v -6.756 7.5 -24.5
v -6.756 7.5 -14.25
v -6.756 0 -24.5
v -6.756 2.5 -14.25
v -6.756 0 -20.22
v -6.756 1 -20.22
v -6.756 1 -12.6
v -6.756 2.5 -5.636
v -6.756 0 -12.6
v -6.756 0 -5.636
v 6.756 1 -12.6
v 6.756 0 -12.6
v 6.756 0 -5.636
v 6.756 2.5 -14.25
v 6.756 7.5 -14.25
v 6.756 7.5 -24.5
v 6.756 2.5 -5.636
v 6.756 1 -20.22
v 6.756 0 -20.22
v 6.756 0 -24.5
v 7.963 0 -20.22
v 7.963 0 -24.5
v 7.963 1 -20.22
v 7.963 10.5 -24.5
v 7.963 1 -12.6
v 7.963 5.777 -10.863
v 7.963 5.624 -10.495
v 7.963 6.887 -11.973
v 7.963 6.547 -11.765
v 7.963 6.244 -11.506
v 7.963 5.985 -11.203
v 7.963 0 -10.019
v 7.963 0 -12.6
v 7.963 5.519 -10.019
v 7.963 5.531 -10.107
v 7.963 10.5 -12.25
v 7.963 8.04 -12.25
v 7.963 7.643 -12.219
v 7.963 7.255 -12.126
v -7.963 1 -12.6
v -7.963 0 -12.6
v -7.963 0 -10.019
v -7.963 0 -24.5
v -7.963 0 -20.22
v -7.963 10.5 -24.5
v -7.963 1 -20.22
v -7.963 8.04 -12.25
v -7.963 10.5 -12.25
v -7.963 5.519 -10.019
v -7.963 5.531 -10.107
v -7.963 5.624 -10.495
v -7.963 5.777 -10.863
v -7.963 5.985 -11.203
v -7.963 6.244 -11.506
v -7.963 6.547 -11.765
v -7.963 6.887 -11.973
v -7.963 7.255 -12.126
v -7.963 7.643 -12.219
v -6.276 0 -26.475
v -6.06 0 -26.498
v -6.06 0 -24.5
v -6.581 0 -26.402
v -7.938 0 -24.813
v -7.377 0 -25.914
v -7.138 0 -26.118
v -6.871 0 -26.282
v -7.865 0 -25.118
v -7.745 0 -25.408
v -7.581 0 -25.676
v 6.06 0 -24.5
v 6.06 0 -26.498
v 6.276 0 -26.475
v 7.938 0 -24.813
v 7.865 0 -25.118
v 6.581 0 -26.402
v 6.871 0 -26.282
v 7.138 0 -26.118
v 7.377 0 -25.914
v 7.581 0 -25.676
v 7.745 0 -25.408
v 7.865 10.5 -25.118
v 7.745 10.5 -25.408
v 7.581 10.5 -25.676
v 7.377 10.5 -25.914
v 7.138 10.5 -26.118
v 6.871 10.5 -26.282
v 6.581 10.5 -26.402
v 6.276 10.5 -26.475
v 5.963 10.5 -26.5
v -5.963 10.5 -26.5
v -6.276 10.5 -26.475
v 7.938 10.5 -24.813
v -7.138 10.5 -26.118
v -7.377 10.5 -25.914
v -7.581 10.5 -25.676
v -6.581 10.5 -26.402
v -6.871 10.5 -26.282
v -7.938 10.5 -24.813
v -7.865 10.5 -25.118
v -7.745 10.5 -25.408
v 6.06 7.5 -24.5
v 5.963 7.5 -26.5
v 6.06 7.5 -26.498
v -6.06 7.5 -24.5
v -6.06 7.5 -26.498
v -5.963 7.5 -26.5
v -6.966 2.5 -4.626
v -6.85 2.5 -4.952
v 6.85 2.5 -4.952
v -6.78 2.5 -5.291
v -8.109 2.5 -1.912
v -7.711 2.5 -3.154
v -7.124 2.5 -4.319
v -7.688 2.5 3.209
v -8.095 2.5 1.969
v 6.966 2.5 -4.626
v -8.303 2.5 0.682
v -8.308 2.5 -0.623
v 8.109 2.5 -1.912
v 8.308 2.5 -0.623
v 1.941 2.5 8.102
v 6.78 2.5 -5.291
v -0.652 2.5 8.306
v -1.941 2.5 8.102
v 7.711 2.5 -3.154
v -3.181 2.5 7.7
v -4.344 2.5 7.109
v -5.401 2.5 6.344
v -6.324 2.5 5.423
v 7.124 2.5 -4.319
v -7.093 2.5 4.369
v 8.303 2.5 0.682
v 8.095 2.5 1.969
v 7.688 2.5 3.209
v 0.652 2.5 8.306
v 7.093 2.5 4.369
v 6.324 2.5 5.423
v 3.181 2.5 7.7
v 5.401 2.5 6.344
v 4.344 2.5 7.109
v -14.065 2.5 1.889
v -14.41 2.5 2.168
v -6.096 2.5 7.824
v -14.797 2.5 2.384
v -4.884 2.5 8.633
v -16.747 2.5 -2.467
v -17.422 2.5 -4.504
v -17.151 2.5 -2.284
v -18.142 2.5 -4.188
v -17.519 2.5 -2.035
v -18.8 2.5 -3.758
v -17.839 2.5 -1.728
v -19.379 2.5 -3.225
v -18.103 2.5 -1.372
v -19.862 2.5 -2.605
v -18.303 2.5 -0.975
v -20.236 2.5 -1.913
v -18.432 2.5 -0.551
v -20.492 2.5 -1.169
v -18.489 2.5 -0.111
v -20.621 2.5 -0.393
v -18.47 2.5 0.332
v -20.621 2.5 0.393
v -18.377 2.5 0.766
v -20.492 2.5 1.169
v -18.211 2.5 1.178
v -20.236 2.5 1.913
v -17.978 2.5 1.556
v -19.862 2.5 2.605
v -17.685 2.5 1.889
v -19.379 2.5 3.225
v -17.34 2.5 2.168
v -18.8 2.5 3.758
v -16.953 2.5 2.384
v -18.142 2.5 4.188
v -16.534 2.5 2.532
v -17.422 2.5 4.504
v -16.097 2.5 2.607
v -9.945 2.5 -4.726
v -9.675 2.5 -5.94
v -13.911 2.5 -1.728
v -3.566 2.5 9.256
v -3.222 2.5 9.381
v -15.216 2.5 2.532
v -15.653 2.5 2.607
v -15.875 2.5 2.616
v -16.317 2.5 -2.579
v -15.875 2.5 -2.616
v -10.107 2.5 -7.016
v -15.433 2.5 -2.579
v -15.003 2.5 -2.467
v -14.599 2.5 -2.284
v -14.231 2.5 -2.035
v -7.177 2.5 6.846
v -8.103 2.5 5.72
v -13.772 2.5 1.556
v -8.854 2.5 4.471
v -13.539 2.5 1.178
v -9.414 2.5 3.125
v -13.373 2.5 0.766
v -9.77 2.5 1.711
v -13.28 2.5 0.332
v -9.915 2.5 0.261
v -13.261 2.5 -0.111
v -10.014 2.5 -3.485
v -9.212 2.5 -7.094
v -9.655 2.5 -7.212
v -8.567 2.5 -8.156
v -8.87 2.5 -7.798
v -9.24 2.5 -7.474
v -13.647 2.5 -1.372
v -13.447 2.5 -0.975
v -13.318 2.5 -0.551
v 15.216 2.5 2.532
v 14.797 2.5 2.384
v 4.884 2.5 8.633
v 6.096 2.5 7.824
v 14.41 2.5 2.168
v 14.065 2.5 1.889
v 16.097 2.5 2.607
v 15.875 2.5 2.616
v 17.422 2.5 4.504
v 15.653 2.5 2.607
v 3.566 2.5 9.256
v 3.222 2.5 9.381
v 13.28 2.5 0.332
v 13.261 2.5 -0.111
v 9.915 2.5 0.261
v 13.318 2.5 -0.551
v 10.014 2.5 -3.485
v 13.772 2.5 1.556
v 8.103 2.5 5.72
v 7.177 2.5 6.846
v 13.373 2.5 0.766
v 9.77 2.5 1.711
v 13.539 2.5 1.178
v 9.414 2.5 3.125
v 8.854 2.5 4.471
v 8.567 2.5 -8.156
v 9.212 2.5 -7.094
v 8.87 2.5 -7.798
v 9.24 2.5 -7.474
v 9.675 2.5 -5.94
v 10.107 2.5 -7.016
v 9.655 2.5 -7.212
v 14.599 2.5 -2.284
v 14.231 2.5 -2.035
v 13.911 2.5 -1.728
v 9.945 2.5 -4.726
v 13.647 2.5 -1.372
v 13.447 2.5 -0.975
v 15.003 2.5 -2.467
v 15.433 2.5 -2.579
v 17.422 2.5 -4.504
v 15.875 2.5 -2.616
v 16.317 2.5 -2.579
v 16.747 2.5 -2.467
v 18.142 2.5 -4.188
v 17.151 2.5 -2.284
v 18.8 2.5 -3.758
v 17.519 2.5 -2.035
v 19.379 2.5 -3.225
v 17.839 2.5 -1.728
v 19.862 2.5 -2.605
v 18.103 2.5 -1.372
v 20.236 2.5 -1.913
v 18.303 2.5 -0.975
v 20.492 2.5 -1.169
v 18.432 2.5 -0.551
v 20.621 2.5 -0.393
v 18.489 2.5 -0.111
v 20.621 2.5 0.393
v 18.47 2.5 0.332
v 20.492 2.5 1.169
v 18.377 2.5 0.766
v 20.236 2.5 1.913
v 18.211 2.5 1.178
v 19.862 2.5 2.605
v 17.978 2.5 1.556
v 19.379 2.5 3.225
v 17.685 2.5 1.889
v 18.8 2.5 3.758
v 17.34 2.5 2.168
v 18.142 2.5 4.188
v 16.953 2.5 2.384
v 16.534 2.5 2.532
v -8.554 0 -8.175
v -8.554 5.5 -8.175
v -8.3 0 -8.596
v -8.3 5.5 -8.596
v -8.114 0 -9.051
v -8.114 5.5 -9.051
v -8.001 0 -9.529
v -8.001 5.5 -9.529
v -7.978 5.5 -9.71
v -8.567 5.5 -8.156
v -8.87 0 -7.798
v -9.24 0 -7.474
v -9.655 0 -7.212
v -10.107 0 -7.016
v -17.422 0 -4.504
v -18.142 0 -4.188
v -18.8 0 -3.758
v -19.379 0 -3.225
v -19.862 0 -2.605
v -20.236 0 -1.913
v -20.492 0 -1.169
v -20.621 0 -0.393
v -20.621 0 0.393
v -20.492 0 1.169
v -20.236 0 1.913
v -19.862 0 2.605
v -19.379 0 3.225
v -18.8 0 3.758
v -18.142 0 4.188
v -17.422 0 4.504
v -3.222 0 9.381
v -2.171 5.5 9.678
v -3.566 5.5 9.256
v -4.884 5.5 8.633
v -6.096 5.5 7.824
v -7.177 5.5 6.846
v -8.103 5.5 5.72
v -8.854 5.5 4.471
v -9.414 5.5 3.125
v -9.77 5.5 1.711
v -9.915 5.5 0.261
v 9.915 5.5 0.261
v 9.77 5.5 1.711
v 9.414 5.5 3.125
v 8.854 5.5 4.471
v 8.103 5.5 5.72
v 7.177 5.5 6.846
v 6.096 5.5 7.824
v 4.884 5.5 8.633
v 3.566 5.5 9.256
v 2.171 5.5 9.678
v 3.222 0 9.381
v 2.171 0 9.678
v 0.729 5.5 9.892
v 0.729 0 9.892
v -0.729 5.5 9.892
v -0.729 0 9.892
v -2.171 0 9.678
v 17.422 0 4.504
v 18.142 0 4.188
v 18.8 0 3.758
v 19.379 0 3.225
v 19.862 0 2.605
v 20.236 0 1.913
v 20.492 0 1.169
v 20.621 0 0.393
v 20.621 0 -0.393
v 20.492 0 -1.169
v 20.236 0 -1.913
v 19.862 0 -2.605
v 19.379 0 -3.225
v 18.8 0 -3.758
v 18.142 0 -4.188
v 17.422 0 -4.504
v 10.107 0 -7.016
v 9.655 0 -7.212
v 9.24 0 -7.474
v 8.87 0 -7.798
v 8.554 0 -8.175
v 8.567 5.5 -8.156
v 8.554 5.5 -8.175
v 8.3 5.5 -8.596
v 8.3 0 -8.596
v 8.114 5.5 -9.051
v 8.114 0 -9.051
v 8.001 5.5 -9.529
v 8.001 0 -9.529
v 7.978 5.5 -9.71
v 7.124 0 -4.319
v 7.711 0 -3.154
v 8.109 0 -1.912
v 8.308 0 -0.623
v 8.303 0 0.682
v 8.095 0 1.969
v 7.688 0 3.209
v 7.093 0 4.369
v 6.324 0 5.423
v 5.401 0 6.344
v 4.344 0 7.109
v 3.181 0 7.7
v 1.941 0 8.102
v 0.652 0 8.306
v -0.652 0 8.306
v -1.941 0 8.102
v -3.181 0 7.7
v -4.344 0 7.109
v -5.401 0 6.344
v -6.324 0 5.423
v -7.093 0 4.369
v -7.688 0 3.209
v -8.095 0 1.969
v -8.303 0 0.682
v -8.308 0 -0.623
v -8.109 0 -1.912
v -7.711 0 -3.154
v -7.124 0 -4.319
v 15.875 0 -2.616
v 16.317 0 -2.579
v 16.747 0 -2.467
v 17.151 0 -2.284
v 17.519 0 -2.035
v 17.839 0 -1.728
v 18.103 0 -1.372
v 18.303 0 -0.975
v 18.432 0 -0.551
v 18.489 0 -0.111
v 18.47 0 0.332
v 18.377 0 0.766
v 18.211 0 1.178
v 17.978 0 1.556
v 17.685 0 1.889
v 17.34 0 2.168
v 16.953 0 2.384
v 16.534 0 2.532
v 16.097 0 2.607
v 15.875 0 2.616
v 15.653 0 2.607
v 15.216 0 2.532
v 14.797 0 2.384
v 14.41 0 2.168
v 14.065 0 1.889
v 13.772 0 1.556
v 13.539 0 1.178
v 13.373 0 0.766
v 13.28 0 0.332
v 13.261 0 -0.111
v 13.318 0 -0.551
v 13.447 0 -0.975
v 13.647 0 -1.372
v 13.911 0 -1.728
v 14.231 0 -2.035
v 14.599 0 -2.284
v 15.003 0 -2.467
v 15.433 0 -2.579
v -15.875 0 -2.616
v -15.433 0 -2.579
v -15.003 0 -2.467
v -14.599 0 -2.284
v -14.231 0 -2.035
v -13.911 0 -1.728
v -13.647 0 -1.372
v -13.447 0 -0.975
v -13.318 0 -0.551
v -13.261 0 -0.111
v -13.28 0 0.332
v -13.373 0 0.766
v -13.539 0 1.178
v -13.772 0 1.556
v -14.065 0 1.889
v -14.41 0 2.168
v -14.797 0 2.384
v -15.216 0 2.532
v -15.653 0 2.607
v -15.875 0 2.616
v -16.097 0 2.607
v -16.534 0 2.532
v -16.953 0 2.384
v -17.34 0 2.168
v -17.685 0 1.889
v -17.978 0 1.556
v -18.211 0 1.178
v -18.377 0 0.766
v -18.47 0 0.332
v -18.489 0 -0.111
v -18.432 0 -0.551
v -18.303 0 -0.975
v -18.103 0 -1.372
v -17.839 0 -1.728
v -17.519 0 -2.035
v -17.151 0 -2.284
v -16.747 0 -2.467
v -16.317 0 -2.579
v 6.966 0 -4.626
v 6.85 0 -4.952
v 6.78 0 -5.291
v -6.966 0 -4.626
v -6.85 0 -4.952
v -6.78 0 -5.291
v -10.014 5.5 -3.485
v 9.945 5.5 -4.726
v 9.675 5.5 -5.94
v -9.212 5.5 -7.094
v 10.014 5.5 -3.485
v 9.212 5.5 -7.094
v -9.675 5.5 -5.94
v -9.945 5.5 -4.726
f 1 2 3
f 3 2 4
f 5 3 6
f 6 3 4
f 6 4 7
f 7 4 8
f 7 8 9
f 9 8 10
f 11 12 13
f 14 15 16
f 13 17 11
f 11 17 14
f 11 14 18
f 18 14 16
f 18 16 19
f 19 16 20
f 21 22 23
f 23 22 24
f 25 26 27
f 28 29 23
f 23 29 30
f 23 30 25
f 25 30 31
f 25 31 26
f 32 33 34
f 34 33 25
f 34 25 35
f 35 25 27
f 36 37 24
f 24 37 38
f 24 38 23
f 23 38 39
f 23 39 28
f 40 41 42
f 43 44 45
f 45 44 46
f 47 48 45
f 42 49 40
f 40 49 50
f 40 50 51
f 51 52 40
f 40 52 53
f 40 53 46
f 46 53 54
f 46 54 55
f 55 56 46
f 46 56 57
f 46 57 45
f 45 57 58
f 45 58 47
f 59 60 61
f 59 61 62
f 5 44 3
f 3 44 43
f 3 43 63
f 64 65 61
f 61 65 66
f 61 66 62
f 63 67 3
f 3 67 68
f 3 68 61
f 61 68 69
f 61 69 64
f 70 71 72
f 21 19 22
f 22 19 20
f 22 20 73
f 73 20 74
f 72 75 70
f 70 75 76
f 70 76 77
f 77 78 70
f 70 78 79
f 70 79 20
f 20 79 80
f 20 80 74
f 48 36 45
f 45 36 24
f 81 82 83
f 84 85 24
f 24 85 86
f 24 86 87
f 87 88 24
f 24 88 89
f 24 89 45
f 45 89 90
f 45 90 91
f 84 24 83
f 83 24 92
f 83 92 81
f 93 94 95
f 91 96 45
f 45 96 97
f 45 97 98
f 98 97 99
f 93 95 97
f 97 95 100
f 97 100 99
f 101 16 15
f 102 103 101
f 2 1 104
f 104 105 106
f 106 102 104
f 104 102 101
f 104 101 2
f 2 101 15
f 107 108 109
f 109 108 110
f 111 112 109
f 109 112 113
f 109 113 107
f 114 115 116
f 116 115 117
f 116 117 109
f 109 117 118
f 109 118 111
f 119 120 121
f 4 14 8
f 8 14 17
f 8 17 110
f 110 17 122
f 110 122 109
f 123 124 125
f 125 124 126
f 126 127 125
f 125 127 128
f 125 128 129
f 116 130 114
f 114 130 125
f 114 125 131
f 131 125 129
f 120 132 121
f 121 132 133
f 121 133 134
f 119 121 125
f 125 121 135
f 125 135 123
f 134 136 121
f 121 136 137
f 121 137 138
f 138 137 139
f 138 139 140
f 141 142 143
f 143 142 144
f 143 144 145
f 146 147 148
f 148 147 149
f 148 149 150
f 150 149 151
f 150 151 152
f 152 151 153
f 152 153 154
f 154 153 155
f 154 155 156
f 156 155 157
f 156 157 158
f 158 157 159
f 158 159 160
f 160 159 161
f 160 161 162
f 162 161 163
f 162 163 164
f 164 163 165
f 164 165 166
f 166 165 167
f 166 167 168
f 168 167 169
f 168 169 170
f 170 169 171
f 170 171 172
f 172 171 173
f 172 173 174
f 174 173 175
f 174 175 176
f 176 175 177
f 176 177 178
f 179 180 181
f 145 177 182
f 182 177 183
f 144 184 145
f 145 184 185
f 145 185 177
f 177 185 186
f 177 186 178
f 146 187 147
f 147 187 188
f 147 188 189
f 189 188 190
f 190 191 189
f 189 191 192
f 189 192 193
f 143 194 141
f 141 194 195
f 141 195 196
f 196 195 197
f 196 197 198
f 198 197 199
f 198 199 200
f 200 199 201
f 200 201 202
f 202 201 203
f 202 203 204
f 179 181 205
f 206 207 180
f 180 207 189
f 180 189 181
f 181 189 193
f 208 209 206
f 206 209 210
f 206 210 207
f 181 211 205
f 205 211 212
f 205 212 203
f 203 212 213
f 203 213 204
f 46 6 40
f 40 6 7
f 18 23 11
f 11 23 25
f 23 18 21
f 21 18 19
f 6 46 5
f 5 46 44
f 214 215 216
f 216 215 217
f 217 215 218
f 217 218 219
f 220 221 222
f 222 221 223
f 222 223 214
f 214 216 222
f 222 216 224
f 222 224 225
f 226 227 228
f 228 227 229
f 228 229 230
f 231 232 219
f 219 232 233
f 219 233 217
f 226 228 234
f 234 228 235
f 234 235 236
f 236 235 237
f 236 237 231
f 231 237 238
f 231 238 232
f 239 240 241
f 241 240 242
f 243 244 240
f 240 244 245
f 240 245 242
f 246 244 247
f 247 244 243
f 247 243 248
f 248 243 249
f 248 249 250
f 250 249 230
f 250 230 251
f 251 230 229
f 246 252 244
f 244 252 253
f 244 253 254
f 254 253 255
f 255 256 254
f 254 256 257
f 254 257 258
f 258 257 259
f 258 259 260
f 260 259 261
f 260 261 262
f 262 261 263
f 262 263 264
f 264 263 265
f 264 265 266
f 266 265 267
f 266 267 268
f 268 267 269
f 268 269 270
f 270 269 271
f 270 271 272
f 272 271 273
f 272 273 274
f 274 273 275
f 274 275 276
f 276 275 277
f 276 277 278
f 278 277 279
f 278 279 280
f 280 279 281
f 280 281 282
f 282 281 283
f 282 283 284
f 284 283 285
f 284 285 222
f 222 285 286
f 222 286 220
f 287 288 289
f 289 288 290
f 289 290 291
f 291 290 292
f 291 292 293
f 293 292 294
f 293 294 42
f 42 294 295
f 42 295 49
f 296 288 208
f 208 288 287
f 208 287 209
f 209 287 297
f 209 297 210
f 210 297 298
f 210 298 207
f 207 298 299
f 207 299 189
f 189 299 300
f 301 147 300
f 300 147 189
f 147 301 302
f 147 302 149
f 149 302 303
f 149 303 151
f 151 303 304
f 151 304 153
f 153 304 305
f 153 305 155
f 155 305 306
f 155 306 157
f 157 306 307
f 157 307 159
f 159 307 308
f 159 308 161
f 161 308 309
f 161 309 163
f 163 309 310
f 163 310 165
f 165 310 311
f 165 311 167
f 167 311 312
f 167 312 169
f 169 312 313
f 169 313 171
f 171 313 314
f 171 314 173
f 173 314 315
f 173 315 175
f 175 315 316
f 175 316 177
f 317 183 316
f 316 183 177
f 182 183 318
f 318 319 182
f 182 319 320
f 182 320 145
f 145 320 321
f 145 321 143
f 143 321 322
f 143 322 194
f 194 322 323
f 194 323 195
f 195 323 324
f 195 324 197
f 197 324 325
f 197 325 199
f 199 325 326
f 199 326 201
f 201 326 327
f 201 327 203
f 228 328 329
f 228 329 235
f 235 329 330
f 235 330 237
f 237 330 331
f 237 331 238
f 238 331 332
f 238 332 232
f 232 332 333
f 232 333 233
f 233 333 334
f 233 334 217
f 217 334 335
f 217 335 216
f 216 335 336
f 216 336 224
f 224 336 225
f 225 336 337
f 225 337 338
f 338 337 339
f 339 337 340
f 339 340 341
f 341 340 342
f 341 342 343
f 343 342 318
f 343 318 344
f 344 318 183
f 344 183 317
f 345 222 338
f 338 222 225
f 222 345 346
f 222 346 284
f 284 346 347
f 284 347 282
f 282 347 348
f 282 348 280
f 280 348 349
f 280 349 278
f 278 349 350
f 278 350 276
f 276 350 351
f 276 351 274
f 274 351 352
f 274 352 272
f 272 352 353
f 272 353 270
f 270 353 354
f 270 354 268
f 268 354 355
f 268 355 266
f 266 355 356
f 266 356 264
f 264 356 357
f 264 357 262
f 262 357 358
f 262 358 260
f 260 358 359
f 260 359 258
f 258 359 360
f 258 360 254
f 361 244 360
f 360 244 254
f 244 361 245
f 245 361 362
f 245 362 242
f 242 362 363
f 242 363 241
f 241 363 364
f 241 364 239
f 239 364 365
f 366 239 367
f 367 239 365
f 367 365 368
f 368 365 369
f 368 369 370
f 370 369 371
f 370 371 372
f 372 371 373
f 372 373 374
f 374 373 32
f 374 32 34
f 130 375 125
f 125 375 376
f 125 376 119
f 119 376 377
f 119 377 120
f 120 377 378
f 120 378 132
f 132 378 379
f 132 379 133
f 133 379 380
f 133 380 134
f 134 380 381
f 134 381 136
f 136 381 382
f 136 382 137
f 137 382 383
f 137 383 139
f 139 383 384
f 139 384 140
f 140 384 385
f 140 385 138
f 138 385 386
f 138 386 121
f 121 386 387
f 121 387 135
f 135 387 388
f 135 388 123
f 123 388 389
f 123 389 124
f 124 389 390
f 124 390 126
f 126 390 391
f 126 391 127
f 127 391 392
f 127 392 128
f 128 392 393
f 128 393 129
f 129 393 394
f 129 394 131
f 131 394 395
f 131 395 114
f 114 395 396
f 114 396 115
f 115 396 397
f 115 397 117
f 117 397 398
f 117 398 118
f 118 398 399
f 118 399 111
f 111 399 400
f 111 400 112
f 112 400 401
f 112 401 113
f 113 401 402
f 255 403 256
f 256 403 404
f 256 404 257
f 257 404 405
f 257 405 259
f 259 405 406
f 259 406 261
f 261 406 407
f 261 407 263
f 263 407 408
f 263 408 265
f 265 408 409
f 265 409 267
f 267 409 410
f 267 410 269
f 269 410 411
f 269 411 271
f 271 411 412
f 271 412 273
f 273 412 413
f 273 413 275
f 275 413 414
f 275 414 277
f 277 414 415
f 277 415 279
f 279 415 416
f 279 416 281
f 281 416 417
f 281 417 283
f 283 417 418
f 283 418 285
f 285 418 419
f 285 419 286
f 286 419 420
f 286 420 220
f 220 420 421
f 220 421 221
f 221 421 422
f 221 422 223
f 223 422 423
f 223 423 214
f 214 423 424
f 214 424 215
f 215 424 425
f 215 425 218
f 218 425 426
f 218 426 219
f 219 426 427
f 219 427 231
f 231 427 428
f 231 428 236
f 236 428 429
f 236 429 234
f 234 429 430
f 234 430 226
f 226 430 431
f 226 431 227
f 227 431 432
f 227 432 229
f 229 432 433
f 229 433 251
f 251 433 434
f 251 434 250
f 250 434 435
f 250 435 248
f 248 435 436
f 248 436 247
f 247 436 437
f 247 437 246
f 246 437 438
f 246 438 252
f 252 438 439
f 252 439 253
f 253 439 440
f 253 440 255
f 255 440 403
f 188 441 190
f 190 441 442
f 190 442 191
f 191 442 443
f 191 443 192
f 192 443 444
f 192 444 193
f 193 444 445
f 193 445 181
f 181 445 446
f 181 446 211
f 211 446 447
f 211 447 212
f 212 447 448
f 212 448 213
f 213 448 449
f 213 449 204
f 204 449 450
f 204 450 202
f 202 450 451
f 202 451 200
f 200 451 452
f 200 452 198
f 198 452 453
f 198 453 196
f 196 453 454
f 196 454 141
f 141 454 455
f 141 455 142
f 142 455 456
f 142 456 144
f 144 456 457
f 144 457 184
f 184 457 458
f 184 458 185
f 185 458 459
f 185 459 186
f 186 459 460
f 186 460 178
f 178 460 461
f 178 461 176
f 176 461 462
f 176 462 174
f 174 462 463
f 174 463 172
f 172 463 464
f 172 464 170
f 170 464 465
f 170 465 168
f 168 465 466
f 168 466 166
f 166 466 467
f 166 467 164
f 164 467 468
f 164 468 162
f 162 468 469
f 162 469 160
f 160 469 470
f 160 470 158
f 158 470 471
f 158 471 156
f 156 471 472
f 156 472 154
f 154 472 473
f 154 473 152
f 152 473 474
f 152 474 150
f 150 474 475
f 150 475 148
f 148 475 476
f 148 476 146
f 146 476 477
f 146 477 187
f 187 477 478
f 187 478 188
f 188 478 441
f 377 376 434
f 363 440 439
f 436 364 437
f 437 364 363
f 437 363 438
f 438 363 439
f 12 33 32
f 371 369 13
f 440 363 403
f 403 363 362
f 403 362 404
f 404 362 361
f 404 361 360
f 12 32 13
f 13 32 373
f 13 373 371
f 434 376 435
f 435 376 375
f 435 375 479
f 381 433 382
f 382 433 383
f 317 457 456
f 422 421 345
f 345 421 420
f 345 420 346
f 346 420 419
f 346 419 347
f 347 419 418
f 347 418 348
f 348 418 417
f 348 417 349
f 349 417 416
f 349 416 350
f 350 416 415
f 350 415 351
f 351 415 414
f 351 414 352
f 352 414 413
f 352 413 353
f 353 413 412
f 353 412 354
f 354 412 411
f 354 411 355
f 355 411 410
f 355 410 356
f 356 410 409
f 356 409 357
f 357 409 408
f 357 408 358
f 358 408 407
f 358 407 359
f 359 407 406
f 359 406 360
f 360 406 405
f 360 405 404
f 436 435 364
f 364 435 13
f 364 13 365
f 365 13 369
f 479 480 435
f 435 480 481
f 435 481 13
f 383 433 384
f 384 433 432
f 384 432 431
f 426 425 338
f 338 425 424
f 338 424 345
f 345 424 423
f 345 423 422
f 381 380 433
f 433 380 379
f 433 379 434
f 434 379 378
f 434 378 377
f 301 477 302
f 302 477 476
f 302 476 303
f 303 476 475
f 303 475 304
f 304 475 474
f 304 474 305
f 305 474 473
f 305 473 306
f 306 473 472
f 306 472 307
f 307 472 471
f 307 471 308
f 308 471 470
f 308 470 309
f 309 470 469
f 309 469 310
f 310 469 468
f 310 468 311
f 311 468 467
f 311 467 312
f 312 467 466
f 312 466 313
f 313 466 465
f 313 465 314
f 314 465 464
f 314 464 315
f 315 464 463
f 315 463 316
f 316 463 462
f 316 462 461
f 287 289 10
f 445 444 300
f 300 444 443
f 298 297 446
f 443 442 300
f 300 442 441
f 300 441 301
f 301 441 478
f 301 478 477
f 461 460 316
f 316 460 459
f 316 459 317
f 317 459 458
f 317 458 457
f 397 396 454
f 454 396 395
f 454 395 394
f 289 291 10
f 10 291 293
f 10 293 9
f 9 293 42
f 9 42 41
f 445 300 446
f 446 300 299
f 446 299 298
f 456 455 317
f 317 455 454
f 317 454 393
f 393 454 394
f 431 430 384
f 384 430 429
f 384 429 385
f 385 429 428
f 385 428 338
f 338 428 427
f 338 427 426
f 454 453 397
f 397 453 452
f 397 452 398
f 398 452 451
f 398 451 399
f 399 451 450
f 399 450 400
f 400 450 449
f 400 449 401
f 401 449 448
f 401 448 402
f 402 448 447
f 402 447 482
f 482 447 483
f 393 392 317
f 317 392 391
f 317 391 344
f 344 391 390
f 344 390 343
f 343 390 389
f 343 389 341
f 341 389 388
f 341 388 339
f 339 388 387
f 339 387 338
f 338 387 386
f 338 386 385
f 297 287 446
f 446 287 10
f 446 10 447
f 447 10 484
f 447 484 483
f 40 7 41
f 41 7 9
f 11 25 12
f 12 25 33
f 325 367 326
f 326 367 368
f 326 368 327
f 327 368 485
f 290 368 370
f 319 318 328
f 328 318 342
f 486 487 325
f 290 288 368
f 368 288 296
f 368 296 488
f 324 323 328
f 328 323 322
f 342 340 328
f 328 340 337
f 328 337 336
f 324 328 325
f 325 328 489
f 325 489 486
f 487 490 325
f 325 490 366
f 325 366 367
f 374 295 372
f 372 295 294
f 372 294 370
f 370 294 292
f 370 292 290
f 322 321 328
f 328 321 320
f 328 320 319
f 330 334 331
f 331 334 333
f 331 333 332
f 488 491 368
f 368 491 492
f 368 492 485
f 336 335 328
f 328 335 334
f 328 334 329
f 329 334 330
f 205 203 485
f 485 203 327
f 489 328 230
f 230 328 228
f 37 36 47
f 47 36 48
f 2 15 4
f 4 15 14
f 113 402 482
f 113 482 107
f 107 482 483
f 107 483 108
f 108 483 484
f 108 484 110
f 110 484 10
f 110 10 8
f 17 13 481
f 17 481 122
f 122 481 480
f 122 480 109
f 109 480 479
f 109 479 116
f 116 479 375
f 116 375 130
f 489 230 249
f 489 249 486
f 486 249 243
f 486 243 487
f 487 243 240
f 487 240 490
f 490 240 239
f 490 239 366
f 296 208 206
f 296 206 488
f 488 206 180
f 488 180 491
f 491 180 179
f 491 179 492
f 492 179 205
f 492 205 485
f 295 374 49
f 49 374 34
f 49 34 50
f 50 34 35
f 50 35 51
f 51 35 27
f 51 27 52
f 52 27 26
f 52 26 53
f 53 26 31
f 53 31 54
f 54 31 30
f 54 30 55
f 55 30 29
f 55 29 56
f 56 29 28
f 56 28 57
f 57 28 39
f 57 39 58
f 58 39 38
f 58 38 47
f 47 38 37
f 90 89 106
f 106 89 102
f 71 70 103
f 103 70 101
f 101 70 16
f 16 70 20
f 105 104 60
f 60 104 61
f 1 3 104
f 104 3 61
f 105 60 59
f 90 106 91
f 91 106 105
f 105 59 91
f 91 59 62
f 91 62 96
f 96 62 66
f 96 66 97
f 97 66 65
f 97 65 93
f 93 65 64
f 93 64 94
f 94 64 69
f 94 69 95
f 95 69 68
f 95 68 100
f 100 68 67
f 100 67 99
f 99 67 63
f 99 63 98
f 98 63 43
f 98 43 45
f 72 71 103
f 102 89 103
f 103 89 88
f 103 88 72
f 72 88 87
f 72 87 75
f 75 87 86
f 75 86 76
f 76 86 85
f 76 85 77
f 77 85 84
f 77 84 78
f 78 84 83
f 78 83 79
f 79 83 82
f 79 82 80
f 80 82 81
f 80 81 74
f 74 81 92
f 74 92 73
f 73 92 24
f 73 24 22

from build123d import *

# Parameters (mm, degrees)
BOSS_EXTRUDE1_DEPTH   = 1
SKETCH3_R             = 2.6162
BOSS_EXTRUDE1_2_DEPTH = 1
SKETCH4_R             = 2.6162
BOSS_EXTRUDE2_DEPTH   = 1.5
BOSS_EXTRUDE3_DEPTH   = 3
SKETCH6_W             = 15.9258
SKETCH6_H             = 13.25
BOSS_EXTRUDE4_DEPTH   = 5
SKETCH7_W             = 13.5128
SKETCH7_H             = 10
CUT_EXTRUDE1_DEPTH    = 5
FILLET1_R             = 2.54
FILLET2_R             = 2.54
FILLET3_R             = 7.62
FILLET5_R             = 2.54
SKETCH8_W             = 15.9258
SKETCH8_H             = 10.5
CUT_EXTRUDE2_DEPTH    = 3
BOSS_EXTRUDE5_DEPTH   = 4
SKETCH10_W            = 0.6964
SKETCH10_H            = 7.5
BOSS_EXTRUDE6_DEPTH   = 2
FILLET8_R             = 2


with BuildPart() as part:
    # Sketch3 → Boss-Extrude1 (new body)
    with BuildSketch(Plane(origin=(0, 0, 0), x_dir=(1, 0, 0), z_dir=(0, 1, 0))):
        Polygon((6.7564, 24.25), (6.7564, 20.22), (7.9629, 20.22), (7.9629, 25.5), (-7.9629, 25.5), (-7.9629, 20.22), (-6.7564, 20.22), (-6.7564, 24.25), align=None)
    extrude(amount=BOSS_EXTRUDE1_DEPTH)



with BuildPart() as body_2:
    # Sketch3 → Boss-Extrude1 2 (new body)
    with BuildSketch(Plane(origin=(0, 0, 0), x_dir=(1, 0, 0), z_dir=(0, 1, 0))):
        with BuildLine():
            Line((6.7564, 12.6), (6.7564, 4.876812672))
            ThreePointArc((6.7564, 4.876812672), (6.776225919, 4.847421317), (6.796505263, 4.818340964))
            ThreePointArc((6.796505263, 4.818340964), (0, -8.3312), (-6.796505263, 4.818340964))
            ThreePointArc((-6.796505263, 4.818340964), (-6.776225919, 4.847421317), (-6.7564, 4.876812672))
            Line((-6.7564, 4.876812672), (-6.7564, 12.6))
            Line((-6.7564, 12.6), (-7.9629, 12.6))
            Line((-7.9629, 12.6), (-7.9629, 10.019330915))
            ThreePointArc((-7.9629, 10.019330915), (-8.553832276, 8.174549356), (-10.10666, 7.016470768))
            Line((-10.10666, 7.016470768), (-17.42186, 4.50429022))
            ThreePointArc((-17.42186, 4.50429022), (-20.6375, 0), (-17.42186, -4.50429022))
            Line((-17.42186, -4.50429022), (-3.22159376, -9.380935099))
            ThreePointArc((-3.22159376, -9.380935099), (0, -9.9187), (3.22159376, -9.380935099))
            Line((3.22159376, -9.380935099), (17.42186, -4.50429022))
            ThreePointArc((17.42186, -4.50429022), (20.6375, 0), (17.42186, 4.50429022))
            Line((17.42186, 4.50429022), (10.10666, 7.016470768))
            ThreePointArc((10.10666, 7.016470768), (8.553832276, 8.174549356), (7.9629, 10.019330915))
            Line((7.9629, 10.019330915), (7.9629, 12.6))
            Line((7.9629, 12.6), (6.7564, 12.6))
        make_face()
        with Locations(Location((-15.875, 0, 0), (0, 0, 270))):
            Circle(SKETCH3_R, mode=Mode.SUBTRACT)
        with Locations(Location((15.875, 0, 0), (0, 0, 270))):
            Circle(SKETCH3_R, mode=Mode.SUBTRACT)
    extrude(amount=BOSS_EXTRUDE1_2_DEPTH)


with BuildPart() as part_1:
    add(part.part)

    add(body_2.part)  # Boss-Extrude2 merges body 2
    # Sketch4 → Boss-Extrude2 (add)
    with BuildSketch(Plane(origin=(0, 1, 0), x_dir=(1, 0, 0), z_dir=(0, 1, 0))):
        with BuildLine():
            Line((7.9629, 20.22), (7.9629, 25.5))
            Line((7.9629, 25.5), (-7.9629, 25.5))
            Line((-7.9629, 25.5), (-7.9629, 20.22))
            Line((-7.9629, 20.22), (-7.9629, 12.6))
            Line((-7.9629, 12.6), (-7.9629, 10.019330915))
            ThreePointArc((-7.9629, 10.019330915), (-8.553832276, 8.174549356), (-10.10666, 7.016470768))
            Line((-10.10666, 7.016470768), (-17.42186, 4.50429022))
            ThreePointArc((-17.42186, 4.50429022), (-20.6375, 0), (-17.42186, -4.50429022))
            Line((-17.42186, -4.50429022), (-3.22159376, -9.380935099))
            ThreePointArc((-3.22159376, -9.380935099), (0, -9.9187), (3.22159376, -9.380935099))
            Line((3.22159376, -9.380935099), (17.42186, -4.50429022))
            ThreePointArc((17.42186, -4.50429022), (20.6375, 0), (17.42186, 4.50429022))
            Line((17.42186, 4.50429022), (10.10666, 7.016470768))
            ThreePointArc((10.10666, 7.016470768), (8.553832276, 8.174549356), (7.9629, 10.019330915))
            Line((7.9629, 10.019330915), (7.9629, 12.6))
            Line((7.9629, 12.6), (7.9629, 20.22))
        make_face()
        with Locations(Location((15.875, 0, 0), (0, 0, 270))):
            Circle(SKETCH4_R, mode=Mode.SUBTRACT)
        with Locations(Location((-15.875, 0, 0), (0, 0, 270))):
            Circle(SKETCH4_R, mode=Mode.SUBTRACT)
        with BuildLine():
            Line((-6.7564, 24.25), (6.7564, 24.25))
            Line((6.7564, 24.25), (6.7564, 20.22))
            Line((6.7564, 20.22), (6.7564, 12.6))
            Line((6.7564, 12.6), (6.7564, 4.876812672))
            ThreePointArc((6.7564, 4.876812672), (6.776225919, 4.847421317), (6.796505263, 4.818340964))
            ThreePointArc((6.796505263, 4.818340964), (0, -8.3312), (-6.796505263, 4.818340964))
            ThreePointArc((-6.796505263, 4.818340964), (-6.776225919, 4.847421317), (-6.7564, 4.876812672))
            Line((-6.7564, 4.876812672), (-6.7564, 12.6))
            Line((-6.7564, 12.6), (-6.7564, 20.22))
            Line((-6.7564, 20.22), (-6.7564, 24.25))
        make_face(mode=Mode.SUBTRACT)
    extrude(amount=BOSS_EXTRUDE2_DEPTH)

    # Sketch5 → Boss-Extrude3 (add)
    # profile 1 of 2: a face of its own
    with BuildSketch(Plane(origin=(0, 2.5, 0), x_dir=(1, 0, 0), z_dir=(0, 1, 0))):
        with BuildLine():
            Line((-10.10666, 7.016470768), (-9.91527155, -0.260767662))
            ThreePointArc((-9.91527155, -0.260767662), (-7.996166023, -5.868725468), (-3.22159376, -9.380935099))
            ThreePointArc((-3.22159376, -9.380935099), (0, -9.9187), (3.22159376, -9.380935099))
            ThreePointArc((3.22159376, -9.380935099), (7.996166023, -5.868725468), (9.91527155, -0.260767662))
            Line((9.91527155, -0.260767662), (10.10666, 7.016470768))
            ThreePointArc((10.10666, 7.016470768), (8.553832276, 8.174549356), (7.9629, 10.019330915))
            Line((7.9629, 10.019330915), (7.9629, 25.5))
            Line((7.9629, 25.5), (-7.9629, 25.5))
            Line((-7.9629, 25.5), (-7.9629, 10.019330915))
            ThreePointArc((-7.9629, 10.019330915), (-8.553832276, 8.174549356), (-10.10666, 7.016470768))
        make_face()
        with BuildLine():
            Line((-6.7564, 4.876812672), (-6.7564, 24.25))
            Line((-6.7564, 24.25), (6.7564, 24.25))
            Line((6.7564, 24.25), (6.7564, 4.876812672))
            ThreePointArc((6.7564, 4.876812672), (6.776225919, 4.847421317), (6.796505263, 4.818340964))
            ThreePointArc((6.796505263, 4.818340964), (0, -8.3312), (-6.796505263, 4.818340964))
            ThreePointArc((-6.796505263, 4.818340964), (-6.776225919, 4.847421317), (-6.7564, 4.876812672))
        make_face(mode=Mode.SUBTRACT)
    # profile 2 of 2: a face of its own
    with BuildSketch(Plane(origin=(0, 2.5, 0), x_dir=(1, 0, 0), z_dir=(0, 1, 0))):
        with BuildLine():
            ThreePointArc((-6.796505263, 4.818340964), (-6.776225919, 4.847421317), (-6.7564, 4.876812672))
            Line((-6.7564, 4.876812672), (-6.7564, 24.25))
            Line((-6.7564, 24.25), (6.7564, 24.25))
            Line((6.7564, 24.25), (6.7564, 4.876812672))
            ThreePointArc((6.7564, 4.876812672), (6.776225919, 4.847421317), (6.796505263, 4.818340964))
            ThreePointArc((6.796505263, 4.818340964), (0, -8.3312), (-6.796505263, 4.818340964))
        make_face()
    extrude(amount=BOSS_EXTRUDE3_DEPTH)

    # Sketch6 → Boss-Extrude4 (add)
    with BuildSketch(Plane(origin=(0, 5.5, 0), x_dir=(1, 0, 0), z_dir=(0, 1, 0))):
        with Locations((0, 18.875)):
            Rectangle(SKETCH6_W, SKETCH6_H)
    extrude(amount=BOSS_EXTRUDE4_DEPTH)

    # Sketch7 → Cut-Extrude1 (cut)
    with BuildSketch(Plane.XZ.offset(-2.5)):
        with Locations((0, -19.25)):
            Rectangle(SKETCH7_W, SKETCH7_H)
    extrude(amount=-CUT_EXTRUDE1_DEPTH, mode=Mode.SUBTRACT)

    # Fillet1
    fillet1_edges = [part_1.edges().sort_by_distance(p)[0] for p in [
        (-6.7564, 1.25, -4.876812672),
    ]]
    fillet(fillet1_edges, radius=FILLET1_R)

    # Fillet2
    fillet2_edges = [part_1.edges().sort_by_distance(p)[0] for p in [
        (6.7564, 1.25, -4.876812672),
    ]]
    fillet(fillet2_edges, radius=FILLET2_R)

    # Fillet3
    fillet3_edges = [part_1.edges().sort_by_distance(p)[0] for p in [
        (10.10666, 4, -7.016470768),
        (-10.10666, 4, -7.016470768),
    ]]
    fillet(fillet3_edges, radius=FILLET3_R)

    # Fillet5
    fillet5_edges = [part_1.edges().sort_by_distance(p)[0] for p in [
        (0, 5.5, -12.25),
    ]]
    fillet(fillet5_edges, radius=FILLET5_R)

    # Sketch8 → Cut-Extrude2 (cut)
    with BuildSketch(Plane(origin=(0, 0, -25.5), x_dir=(-1, 0, 0), z_dir=(0, 0, -1))):
        with Locations((0, 5.25)):
            Rectangle(SKETCH8_W, SKETCH8_H)
    extrude(amount=-CUT_EXTRUDE2_DEPTH, mode=Mode.SUBTRACT)

    # Sketch9 → Boss-Extrude5 (add)
    with BuildSketch(Plane(origin=(0, 0, -22.5), x_dir=(-1, 0, 0), z_dir=(0, 0, -1))):
        Polygon((-6.7564, 0), (-6.7564, 7.5), (6.7564, 7.5), (6.7564, 0), (7.9629, 0), (7.9629, 10.5), (-7.9629, 10.5), (-7.9629, 0), align=None)
    extrude(amount=BOSS_EXTRUDE5_DEPTH)

    # Sketch10 → Boss-Extrude6 (add)
    with BuildSketch(Plane(origin=(0, 0, -26.5), x_dir=(-1, 0, 0), z_dir=(0, 0, -1))):
        with Locations((-6.4082, 3.75)):
            Rectangle(SKETCH10_W, SKETCH10_H)
        with Locations((6.4082, 3.75)):
            Rectangle(SKETCH10_W, SKETCH10_H)
    extrude(amount=-BOSS_EXTRUDE6_DEPTH)

    # Fillet8
    fillet8_edges = [part_1.edges().sort_by_distance(p)[0] for p in [
        (-7.9629, 5.25, -26.5),
        (7.9629, 5.25, -26.5),
    ]]
    fillet(fillet8_edges, radius=FILLET8_R)


solid = part_1.part
